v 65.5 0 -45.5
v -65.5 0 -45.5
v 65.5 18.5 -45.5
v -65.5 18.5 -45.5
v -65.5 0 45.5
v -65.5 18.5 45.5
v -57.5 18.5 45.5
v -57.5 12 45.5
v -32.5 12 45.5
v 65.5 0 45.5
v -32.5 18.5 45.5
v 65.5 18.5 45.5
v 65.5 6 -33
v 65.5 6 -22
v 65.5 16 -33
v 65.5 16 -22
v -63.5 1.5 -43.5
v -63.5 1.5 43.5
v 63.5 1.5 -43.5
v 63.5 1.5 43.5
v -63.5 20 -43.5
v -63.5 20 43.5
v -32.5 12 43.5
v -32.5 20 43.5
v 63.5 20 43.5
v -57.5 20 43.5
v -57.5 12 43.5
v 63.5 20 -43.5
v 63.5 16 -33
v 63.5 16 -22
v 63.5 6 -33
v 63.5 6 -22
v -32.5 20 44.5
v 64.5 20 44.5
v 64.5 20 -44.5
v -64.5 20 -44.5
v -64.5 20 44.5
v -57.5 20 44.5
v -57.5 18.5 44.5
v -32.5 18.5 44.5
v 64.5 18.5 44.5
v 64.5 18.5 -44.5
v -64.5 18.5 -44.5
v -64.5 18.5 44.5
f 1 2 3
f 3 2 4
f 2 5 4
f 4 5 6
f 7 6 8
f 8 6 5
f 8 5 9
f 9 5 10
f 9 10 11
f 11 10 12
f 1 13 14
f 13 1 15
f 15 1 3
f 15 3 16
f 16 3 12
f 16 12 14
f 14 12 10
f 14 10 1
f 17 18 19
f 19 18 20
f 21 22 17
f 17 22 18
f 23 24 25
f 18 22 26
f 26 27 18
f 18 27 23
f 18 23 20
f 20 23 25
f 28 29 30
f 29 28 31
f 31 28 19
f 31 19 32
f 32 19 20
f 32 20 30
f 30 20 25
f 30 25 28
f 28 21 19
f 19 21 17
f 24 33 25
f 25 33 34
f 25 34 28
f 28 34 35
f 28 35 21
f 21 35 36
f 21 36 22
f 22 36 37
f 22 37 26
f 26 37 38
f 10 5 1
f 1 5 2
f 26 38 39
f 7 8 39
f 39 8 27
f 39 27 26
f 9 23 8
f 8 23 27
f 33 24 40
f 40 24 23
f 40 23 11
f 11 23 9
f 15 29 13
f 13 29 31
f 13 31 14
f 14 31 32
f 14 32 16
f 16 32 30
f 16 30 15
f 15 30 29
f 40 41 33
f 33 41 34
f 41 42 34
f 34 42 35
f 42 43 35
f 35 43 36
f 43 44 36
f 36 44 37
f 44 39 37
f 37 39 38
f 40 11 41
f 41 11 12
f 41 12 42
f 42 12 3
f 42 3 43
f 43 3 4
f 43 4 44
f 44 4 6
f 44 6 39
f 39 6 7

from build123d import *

# Parameters (mm, degrees)
SKETCH1_W           = 127
SKETCH1_H           = 87
BOSS_EXTRUDE1_DEPTH = 1.5
SKETCH3_W           = 131
SKETCH3_H           = 91
SKETCH3_W_2         = 127
SKETCH3_H_2         = 87
BOSS_EXTRUDE2_DEPTH = 20
CUT_EXTRUDE1_REACH  = 115.891
SKETCH4_W           = 25
SKETCH4_H           = 10
CUT_EXTRUDE2_REACH  = 142.112
SKETCH5_W           = 11
SKETCH5_H           = 10
CUT_EXTRUDE3_DEPTH  = 1.5


with BuildPart() as part:
    # Sketch1 → Boss-Extrude1 (new body)
    with BuildSketch(Plane(origin=(0, 0, 0), x_dir=(1, 0, 0), z_dir=(0, 1, 0))):
        Rectangle(SKETCH1_W, SKETCH1_H)
    extrude(amount=BOSS_EXTRUDE1_DEPTH)

    # Sketch3 → Boss-Extrude2 (add)
    with BuildSketch(Plane(origin=(0, 0, 0), x_dir=(1, 0, 0), z_dir=(0, 1, 0))):
        Rectangle(SKETCH3_W, SKETCH3_H)
        Rectangle(SKETCH3_W_2, SKETCH3_H_2, mode=Mode.SUBTRACT)
    extrude(amount=BOSS_EXTRUDE2_DEPTH)

    # Sketch4 → Cut-Extrude1 (cut, up to next)
    with BuildSketch(Plane.XY.offset(45.5), mode=Mode.PRIVATE) as cut_extrude1_sk1:
        with Locations((-45, 17)):
            Rectangle(SKETCH4_W, SKETCH4_H)
    cut_extrude1_tool1 = extrude(cut_extrude1_sk1.sketch, amount=-CUT_EXTRUDE1_REACH, mode=Mode.PRIVATE) & part.part
    add(cut_extrude1_tool1.solids().sort_by_distance((-45, 17, 45.5))[0], mode=Mode.SUBTRACT)

    # Sketch5 → Cut-Extrude2 (cut, up to next)
    with BuildSketch(Plane(origin=(65.5, 0, 0), x_dir=(0, 0, -1), z_dir=(1, 0, 0)), mode=Mode.PRIVATE) as cut_extrude2_sk1:
        with Locations((27.5, 11)):
            Rectangle(SKETCH5_W, SKETCH5_H)
    cut_extrude2_tool1 = extrude(cut_extrude2_sk1.sketch, amount=-CUT_EXTRUDE2_REACH, mode=Mode.PRIVATE) & part.part
    add(cut_extrude2_tool1.solids().sort_by_distance((65.5, 11, -27.5))[0], mode=Mode.SUBTRACT)

    # Sketch6 → Cut-Extrude3 (cut)
    with BuildSketch(Plane(origin=(0, 20, 0), x_dir=(1, 0, 0), z_dir=(0, 1, 0))):
        Polygon((-57.5, -44.5), (-64.5, -44.5), (-64.5, 44.5), (64.5, 44.5), (64.5, -44.5), (-32.5, -44.5), (-32.5, -45.5), (65.5, -45.5), (65.5, 45.5), (-65.5, 45.5), (-65.5, -45.5), (-57.5, -45.5), align=None)
    extrude(amount=-CUT_EXTRUDE3_DEPTH, mode=Mode.SUBTRACT)


solid = part.part
